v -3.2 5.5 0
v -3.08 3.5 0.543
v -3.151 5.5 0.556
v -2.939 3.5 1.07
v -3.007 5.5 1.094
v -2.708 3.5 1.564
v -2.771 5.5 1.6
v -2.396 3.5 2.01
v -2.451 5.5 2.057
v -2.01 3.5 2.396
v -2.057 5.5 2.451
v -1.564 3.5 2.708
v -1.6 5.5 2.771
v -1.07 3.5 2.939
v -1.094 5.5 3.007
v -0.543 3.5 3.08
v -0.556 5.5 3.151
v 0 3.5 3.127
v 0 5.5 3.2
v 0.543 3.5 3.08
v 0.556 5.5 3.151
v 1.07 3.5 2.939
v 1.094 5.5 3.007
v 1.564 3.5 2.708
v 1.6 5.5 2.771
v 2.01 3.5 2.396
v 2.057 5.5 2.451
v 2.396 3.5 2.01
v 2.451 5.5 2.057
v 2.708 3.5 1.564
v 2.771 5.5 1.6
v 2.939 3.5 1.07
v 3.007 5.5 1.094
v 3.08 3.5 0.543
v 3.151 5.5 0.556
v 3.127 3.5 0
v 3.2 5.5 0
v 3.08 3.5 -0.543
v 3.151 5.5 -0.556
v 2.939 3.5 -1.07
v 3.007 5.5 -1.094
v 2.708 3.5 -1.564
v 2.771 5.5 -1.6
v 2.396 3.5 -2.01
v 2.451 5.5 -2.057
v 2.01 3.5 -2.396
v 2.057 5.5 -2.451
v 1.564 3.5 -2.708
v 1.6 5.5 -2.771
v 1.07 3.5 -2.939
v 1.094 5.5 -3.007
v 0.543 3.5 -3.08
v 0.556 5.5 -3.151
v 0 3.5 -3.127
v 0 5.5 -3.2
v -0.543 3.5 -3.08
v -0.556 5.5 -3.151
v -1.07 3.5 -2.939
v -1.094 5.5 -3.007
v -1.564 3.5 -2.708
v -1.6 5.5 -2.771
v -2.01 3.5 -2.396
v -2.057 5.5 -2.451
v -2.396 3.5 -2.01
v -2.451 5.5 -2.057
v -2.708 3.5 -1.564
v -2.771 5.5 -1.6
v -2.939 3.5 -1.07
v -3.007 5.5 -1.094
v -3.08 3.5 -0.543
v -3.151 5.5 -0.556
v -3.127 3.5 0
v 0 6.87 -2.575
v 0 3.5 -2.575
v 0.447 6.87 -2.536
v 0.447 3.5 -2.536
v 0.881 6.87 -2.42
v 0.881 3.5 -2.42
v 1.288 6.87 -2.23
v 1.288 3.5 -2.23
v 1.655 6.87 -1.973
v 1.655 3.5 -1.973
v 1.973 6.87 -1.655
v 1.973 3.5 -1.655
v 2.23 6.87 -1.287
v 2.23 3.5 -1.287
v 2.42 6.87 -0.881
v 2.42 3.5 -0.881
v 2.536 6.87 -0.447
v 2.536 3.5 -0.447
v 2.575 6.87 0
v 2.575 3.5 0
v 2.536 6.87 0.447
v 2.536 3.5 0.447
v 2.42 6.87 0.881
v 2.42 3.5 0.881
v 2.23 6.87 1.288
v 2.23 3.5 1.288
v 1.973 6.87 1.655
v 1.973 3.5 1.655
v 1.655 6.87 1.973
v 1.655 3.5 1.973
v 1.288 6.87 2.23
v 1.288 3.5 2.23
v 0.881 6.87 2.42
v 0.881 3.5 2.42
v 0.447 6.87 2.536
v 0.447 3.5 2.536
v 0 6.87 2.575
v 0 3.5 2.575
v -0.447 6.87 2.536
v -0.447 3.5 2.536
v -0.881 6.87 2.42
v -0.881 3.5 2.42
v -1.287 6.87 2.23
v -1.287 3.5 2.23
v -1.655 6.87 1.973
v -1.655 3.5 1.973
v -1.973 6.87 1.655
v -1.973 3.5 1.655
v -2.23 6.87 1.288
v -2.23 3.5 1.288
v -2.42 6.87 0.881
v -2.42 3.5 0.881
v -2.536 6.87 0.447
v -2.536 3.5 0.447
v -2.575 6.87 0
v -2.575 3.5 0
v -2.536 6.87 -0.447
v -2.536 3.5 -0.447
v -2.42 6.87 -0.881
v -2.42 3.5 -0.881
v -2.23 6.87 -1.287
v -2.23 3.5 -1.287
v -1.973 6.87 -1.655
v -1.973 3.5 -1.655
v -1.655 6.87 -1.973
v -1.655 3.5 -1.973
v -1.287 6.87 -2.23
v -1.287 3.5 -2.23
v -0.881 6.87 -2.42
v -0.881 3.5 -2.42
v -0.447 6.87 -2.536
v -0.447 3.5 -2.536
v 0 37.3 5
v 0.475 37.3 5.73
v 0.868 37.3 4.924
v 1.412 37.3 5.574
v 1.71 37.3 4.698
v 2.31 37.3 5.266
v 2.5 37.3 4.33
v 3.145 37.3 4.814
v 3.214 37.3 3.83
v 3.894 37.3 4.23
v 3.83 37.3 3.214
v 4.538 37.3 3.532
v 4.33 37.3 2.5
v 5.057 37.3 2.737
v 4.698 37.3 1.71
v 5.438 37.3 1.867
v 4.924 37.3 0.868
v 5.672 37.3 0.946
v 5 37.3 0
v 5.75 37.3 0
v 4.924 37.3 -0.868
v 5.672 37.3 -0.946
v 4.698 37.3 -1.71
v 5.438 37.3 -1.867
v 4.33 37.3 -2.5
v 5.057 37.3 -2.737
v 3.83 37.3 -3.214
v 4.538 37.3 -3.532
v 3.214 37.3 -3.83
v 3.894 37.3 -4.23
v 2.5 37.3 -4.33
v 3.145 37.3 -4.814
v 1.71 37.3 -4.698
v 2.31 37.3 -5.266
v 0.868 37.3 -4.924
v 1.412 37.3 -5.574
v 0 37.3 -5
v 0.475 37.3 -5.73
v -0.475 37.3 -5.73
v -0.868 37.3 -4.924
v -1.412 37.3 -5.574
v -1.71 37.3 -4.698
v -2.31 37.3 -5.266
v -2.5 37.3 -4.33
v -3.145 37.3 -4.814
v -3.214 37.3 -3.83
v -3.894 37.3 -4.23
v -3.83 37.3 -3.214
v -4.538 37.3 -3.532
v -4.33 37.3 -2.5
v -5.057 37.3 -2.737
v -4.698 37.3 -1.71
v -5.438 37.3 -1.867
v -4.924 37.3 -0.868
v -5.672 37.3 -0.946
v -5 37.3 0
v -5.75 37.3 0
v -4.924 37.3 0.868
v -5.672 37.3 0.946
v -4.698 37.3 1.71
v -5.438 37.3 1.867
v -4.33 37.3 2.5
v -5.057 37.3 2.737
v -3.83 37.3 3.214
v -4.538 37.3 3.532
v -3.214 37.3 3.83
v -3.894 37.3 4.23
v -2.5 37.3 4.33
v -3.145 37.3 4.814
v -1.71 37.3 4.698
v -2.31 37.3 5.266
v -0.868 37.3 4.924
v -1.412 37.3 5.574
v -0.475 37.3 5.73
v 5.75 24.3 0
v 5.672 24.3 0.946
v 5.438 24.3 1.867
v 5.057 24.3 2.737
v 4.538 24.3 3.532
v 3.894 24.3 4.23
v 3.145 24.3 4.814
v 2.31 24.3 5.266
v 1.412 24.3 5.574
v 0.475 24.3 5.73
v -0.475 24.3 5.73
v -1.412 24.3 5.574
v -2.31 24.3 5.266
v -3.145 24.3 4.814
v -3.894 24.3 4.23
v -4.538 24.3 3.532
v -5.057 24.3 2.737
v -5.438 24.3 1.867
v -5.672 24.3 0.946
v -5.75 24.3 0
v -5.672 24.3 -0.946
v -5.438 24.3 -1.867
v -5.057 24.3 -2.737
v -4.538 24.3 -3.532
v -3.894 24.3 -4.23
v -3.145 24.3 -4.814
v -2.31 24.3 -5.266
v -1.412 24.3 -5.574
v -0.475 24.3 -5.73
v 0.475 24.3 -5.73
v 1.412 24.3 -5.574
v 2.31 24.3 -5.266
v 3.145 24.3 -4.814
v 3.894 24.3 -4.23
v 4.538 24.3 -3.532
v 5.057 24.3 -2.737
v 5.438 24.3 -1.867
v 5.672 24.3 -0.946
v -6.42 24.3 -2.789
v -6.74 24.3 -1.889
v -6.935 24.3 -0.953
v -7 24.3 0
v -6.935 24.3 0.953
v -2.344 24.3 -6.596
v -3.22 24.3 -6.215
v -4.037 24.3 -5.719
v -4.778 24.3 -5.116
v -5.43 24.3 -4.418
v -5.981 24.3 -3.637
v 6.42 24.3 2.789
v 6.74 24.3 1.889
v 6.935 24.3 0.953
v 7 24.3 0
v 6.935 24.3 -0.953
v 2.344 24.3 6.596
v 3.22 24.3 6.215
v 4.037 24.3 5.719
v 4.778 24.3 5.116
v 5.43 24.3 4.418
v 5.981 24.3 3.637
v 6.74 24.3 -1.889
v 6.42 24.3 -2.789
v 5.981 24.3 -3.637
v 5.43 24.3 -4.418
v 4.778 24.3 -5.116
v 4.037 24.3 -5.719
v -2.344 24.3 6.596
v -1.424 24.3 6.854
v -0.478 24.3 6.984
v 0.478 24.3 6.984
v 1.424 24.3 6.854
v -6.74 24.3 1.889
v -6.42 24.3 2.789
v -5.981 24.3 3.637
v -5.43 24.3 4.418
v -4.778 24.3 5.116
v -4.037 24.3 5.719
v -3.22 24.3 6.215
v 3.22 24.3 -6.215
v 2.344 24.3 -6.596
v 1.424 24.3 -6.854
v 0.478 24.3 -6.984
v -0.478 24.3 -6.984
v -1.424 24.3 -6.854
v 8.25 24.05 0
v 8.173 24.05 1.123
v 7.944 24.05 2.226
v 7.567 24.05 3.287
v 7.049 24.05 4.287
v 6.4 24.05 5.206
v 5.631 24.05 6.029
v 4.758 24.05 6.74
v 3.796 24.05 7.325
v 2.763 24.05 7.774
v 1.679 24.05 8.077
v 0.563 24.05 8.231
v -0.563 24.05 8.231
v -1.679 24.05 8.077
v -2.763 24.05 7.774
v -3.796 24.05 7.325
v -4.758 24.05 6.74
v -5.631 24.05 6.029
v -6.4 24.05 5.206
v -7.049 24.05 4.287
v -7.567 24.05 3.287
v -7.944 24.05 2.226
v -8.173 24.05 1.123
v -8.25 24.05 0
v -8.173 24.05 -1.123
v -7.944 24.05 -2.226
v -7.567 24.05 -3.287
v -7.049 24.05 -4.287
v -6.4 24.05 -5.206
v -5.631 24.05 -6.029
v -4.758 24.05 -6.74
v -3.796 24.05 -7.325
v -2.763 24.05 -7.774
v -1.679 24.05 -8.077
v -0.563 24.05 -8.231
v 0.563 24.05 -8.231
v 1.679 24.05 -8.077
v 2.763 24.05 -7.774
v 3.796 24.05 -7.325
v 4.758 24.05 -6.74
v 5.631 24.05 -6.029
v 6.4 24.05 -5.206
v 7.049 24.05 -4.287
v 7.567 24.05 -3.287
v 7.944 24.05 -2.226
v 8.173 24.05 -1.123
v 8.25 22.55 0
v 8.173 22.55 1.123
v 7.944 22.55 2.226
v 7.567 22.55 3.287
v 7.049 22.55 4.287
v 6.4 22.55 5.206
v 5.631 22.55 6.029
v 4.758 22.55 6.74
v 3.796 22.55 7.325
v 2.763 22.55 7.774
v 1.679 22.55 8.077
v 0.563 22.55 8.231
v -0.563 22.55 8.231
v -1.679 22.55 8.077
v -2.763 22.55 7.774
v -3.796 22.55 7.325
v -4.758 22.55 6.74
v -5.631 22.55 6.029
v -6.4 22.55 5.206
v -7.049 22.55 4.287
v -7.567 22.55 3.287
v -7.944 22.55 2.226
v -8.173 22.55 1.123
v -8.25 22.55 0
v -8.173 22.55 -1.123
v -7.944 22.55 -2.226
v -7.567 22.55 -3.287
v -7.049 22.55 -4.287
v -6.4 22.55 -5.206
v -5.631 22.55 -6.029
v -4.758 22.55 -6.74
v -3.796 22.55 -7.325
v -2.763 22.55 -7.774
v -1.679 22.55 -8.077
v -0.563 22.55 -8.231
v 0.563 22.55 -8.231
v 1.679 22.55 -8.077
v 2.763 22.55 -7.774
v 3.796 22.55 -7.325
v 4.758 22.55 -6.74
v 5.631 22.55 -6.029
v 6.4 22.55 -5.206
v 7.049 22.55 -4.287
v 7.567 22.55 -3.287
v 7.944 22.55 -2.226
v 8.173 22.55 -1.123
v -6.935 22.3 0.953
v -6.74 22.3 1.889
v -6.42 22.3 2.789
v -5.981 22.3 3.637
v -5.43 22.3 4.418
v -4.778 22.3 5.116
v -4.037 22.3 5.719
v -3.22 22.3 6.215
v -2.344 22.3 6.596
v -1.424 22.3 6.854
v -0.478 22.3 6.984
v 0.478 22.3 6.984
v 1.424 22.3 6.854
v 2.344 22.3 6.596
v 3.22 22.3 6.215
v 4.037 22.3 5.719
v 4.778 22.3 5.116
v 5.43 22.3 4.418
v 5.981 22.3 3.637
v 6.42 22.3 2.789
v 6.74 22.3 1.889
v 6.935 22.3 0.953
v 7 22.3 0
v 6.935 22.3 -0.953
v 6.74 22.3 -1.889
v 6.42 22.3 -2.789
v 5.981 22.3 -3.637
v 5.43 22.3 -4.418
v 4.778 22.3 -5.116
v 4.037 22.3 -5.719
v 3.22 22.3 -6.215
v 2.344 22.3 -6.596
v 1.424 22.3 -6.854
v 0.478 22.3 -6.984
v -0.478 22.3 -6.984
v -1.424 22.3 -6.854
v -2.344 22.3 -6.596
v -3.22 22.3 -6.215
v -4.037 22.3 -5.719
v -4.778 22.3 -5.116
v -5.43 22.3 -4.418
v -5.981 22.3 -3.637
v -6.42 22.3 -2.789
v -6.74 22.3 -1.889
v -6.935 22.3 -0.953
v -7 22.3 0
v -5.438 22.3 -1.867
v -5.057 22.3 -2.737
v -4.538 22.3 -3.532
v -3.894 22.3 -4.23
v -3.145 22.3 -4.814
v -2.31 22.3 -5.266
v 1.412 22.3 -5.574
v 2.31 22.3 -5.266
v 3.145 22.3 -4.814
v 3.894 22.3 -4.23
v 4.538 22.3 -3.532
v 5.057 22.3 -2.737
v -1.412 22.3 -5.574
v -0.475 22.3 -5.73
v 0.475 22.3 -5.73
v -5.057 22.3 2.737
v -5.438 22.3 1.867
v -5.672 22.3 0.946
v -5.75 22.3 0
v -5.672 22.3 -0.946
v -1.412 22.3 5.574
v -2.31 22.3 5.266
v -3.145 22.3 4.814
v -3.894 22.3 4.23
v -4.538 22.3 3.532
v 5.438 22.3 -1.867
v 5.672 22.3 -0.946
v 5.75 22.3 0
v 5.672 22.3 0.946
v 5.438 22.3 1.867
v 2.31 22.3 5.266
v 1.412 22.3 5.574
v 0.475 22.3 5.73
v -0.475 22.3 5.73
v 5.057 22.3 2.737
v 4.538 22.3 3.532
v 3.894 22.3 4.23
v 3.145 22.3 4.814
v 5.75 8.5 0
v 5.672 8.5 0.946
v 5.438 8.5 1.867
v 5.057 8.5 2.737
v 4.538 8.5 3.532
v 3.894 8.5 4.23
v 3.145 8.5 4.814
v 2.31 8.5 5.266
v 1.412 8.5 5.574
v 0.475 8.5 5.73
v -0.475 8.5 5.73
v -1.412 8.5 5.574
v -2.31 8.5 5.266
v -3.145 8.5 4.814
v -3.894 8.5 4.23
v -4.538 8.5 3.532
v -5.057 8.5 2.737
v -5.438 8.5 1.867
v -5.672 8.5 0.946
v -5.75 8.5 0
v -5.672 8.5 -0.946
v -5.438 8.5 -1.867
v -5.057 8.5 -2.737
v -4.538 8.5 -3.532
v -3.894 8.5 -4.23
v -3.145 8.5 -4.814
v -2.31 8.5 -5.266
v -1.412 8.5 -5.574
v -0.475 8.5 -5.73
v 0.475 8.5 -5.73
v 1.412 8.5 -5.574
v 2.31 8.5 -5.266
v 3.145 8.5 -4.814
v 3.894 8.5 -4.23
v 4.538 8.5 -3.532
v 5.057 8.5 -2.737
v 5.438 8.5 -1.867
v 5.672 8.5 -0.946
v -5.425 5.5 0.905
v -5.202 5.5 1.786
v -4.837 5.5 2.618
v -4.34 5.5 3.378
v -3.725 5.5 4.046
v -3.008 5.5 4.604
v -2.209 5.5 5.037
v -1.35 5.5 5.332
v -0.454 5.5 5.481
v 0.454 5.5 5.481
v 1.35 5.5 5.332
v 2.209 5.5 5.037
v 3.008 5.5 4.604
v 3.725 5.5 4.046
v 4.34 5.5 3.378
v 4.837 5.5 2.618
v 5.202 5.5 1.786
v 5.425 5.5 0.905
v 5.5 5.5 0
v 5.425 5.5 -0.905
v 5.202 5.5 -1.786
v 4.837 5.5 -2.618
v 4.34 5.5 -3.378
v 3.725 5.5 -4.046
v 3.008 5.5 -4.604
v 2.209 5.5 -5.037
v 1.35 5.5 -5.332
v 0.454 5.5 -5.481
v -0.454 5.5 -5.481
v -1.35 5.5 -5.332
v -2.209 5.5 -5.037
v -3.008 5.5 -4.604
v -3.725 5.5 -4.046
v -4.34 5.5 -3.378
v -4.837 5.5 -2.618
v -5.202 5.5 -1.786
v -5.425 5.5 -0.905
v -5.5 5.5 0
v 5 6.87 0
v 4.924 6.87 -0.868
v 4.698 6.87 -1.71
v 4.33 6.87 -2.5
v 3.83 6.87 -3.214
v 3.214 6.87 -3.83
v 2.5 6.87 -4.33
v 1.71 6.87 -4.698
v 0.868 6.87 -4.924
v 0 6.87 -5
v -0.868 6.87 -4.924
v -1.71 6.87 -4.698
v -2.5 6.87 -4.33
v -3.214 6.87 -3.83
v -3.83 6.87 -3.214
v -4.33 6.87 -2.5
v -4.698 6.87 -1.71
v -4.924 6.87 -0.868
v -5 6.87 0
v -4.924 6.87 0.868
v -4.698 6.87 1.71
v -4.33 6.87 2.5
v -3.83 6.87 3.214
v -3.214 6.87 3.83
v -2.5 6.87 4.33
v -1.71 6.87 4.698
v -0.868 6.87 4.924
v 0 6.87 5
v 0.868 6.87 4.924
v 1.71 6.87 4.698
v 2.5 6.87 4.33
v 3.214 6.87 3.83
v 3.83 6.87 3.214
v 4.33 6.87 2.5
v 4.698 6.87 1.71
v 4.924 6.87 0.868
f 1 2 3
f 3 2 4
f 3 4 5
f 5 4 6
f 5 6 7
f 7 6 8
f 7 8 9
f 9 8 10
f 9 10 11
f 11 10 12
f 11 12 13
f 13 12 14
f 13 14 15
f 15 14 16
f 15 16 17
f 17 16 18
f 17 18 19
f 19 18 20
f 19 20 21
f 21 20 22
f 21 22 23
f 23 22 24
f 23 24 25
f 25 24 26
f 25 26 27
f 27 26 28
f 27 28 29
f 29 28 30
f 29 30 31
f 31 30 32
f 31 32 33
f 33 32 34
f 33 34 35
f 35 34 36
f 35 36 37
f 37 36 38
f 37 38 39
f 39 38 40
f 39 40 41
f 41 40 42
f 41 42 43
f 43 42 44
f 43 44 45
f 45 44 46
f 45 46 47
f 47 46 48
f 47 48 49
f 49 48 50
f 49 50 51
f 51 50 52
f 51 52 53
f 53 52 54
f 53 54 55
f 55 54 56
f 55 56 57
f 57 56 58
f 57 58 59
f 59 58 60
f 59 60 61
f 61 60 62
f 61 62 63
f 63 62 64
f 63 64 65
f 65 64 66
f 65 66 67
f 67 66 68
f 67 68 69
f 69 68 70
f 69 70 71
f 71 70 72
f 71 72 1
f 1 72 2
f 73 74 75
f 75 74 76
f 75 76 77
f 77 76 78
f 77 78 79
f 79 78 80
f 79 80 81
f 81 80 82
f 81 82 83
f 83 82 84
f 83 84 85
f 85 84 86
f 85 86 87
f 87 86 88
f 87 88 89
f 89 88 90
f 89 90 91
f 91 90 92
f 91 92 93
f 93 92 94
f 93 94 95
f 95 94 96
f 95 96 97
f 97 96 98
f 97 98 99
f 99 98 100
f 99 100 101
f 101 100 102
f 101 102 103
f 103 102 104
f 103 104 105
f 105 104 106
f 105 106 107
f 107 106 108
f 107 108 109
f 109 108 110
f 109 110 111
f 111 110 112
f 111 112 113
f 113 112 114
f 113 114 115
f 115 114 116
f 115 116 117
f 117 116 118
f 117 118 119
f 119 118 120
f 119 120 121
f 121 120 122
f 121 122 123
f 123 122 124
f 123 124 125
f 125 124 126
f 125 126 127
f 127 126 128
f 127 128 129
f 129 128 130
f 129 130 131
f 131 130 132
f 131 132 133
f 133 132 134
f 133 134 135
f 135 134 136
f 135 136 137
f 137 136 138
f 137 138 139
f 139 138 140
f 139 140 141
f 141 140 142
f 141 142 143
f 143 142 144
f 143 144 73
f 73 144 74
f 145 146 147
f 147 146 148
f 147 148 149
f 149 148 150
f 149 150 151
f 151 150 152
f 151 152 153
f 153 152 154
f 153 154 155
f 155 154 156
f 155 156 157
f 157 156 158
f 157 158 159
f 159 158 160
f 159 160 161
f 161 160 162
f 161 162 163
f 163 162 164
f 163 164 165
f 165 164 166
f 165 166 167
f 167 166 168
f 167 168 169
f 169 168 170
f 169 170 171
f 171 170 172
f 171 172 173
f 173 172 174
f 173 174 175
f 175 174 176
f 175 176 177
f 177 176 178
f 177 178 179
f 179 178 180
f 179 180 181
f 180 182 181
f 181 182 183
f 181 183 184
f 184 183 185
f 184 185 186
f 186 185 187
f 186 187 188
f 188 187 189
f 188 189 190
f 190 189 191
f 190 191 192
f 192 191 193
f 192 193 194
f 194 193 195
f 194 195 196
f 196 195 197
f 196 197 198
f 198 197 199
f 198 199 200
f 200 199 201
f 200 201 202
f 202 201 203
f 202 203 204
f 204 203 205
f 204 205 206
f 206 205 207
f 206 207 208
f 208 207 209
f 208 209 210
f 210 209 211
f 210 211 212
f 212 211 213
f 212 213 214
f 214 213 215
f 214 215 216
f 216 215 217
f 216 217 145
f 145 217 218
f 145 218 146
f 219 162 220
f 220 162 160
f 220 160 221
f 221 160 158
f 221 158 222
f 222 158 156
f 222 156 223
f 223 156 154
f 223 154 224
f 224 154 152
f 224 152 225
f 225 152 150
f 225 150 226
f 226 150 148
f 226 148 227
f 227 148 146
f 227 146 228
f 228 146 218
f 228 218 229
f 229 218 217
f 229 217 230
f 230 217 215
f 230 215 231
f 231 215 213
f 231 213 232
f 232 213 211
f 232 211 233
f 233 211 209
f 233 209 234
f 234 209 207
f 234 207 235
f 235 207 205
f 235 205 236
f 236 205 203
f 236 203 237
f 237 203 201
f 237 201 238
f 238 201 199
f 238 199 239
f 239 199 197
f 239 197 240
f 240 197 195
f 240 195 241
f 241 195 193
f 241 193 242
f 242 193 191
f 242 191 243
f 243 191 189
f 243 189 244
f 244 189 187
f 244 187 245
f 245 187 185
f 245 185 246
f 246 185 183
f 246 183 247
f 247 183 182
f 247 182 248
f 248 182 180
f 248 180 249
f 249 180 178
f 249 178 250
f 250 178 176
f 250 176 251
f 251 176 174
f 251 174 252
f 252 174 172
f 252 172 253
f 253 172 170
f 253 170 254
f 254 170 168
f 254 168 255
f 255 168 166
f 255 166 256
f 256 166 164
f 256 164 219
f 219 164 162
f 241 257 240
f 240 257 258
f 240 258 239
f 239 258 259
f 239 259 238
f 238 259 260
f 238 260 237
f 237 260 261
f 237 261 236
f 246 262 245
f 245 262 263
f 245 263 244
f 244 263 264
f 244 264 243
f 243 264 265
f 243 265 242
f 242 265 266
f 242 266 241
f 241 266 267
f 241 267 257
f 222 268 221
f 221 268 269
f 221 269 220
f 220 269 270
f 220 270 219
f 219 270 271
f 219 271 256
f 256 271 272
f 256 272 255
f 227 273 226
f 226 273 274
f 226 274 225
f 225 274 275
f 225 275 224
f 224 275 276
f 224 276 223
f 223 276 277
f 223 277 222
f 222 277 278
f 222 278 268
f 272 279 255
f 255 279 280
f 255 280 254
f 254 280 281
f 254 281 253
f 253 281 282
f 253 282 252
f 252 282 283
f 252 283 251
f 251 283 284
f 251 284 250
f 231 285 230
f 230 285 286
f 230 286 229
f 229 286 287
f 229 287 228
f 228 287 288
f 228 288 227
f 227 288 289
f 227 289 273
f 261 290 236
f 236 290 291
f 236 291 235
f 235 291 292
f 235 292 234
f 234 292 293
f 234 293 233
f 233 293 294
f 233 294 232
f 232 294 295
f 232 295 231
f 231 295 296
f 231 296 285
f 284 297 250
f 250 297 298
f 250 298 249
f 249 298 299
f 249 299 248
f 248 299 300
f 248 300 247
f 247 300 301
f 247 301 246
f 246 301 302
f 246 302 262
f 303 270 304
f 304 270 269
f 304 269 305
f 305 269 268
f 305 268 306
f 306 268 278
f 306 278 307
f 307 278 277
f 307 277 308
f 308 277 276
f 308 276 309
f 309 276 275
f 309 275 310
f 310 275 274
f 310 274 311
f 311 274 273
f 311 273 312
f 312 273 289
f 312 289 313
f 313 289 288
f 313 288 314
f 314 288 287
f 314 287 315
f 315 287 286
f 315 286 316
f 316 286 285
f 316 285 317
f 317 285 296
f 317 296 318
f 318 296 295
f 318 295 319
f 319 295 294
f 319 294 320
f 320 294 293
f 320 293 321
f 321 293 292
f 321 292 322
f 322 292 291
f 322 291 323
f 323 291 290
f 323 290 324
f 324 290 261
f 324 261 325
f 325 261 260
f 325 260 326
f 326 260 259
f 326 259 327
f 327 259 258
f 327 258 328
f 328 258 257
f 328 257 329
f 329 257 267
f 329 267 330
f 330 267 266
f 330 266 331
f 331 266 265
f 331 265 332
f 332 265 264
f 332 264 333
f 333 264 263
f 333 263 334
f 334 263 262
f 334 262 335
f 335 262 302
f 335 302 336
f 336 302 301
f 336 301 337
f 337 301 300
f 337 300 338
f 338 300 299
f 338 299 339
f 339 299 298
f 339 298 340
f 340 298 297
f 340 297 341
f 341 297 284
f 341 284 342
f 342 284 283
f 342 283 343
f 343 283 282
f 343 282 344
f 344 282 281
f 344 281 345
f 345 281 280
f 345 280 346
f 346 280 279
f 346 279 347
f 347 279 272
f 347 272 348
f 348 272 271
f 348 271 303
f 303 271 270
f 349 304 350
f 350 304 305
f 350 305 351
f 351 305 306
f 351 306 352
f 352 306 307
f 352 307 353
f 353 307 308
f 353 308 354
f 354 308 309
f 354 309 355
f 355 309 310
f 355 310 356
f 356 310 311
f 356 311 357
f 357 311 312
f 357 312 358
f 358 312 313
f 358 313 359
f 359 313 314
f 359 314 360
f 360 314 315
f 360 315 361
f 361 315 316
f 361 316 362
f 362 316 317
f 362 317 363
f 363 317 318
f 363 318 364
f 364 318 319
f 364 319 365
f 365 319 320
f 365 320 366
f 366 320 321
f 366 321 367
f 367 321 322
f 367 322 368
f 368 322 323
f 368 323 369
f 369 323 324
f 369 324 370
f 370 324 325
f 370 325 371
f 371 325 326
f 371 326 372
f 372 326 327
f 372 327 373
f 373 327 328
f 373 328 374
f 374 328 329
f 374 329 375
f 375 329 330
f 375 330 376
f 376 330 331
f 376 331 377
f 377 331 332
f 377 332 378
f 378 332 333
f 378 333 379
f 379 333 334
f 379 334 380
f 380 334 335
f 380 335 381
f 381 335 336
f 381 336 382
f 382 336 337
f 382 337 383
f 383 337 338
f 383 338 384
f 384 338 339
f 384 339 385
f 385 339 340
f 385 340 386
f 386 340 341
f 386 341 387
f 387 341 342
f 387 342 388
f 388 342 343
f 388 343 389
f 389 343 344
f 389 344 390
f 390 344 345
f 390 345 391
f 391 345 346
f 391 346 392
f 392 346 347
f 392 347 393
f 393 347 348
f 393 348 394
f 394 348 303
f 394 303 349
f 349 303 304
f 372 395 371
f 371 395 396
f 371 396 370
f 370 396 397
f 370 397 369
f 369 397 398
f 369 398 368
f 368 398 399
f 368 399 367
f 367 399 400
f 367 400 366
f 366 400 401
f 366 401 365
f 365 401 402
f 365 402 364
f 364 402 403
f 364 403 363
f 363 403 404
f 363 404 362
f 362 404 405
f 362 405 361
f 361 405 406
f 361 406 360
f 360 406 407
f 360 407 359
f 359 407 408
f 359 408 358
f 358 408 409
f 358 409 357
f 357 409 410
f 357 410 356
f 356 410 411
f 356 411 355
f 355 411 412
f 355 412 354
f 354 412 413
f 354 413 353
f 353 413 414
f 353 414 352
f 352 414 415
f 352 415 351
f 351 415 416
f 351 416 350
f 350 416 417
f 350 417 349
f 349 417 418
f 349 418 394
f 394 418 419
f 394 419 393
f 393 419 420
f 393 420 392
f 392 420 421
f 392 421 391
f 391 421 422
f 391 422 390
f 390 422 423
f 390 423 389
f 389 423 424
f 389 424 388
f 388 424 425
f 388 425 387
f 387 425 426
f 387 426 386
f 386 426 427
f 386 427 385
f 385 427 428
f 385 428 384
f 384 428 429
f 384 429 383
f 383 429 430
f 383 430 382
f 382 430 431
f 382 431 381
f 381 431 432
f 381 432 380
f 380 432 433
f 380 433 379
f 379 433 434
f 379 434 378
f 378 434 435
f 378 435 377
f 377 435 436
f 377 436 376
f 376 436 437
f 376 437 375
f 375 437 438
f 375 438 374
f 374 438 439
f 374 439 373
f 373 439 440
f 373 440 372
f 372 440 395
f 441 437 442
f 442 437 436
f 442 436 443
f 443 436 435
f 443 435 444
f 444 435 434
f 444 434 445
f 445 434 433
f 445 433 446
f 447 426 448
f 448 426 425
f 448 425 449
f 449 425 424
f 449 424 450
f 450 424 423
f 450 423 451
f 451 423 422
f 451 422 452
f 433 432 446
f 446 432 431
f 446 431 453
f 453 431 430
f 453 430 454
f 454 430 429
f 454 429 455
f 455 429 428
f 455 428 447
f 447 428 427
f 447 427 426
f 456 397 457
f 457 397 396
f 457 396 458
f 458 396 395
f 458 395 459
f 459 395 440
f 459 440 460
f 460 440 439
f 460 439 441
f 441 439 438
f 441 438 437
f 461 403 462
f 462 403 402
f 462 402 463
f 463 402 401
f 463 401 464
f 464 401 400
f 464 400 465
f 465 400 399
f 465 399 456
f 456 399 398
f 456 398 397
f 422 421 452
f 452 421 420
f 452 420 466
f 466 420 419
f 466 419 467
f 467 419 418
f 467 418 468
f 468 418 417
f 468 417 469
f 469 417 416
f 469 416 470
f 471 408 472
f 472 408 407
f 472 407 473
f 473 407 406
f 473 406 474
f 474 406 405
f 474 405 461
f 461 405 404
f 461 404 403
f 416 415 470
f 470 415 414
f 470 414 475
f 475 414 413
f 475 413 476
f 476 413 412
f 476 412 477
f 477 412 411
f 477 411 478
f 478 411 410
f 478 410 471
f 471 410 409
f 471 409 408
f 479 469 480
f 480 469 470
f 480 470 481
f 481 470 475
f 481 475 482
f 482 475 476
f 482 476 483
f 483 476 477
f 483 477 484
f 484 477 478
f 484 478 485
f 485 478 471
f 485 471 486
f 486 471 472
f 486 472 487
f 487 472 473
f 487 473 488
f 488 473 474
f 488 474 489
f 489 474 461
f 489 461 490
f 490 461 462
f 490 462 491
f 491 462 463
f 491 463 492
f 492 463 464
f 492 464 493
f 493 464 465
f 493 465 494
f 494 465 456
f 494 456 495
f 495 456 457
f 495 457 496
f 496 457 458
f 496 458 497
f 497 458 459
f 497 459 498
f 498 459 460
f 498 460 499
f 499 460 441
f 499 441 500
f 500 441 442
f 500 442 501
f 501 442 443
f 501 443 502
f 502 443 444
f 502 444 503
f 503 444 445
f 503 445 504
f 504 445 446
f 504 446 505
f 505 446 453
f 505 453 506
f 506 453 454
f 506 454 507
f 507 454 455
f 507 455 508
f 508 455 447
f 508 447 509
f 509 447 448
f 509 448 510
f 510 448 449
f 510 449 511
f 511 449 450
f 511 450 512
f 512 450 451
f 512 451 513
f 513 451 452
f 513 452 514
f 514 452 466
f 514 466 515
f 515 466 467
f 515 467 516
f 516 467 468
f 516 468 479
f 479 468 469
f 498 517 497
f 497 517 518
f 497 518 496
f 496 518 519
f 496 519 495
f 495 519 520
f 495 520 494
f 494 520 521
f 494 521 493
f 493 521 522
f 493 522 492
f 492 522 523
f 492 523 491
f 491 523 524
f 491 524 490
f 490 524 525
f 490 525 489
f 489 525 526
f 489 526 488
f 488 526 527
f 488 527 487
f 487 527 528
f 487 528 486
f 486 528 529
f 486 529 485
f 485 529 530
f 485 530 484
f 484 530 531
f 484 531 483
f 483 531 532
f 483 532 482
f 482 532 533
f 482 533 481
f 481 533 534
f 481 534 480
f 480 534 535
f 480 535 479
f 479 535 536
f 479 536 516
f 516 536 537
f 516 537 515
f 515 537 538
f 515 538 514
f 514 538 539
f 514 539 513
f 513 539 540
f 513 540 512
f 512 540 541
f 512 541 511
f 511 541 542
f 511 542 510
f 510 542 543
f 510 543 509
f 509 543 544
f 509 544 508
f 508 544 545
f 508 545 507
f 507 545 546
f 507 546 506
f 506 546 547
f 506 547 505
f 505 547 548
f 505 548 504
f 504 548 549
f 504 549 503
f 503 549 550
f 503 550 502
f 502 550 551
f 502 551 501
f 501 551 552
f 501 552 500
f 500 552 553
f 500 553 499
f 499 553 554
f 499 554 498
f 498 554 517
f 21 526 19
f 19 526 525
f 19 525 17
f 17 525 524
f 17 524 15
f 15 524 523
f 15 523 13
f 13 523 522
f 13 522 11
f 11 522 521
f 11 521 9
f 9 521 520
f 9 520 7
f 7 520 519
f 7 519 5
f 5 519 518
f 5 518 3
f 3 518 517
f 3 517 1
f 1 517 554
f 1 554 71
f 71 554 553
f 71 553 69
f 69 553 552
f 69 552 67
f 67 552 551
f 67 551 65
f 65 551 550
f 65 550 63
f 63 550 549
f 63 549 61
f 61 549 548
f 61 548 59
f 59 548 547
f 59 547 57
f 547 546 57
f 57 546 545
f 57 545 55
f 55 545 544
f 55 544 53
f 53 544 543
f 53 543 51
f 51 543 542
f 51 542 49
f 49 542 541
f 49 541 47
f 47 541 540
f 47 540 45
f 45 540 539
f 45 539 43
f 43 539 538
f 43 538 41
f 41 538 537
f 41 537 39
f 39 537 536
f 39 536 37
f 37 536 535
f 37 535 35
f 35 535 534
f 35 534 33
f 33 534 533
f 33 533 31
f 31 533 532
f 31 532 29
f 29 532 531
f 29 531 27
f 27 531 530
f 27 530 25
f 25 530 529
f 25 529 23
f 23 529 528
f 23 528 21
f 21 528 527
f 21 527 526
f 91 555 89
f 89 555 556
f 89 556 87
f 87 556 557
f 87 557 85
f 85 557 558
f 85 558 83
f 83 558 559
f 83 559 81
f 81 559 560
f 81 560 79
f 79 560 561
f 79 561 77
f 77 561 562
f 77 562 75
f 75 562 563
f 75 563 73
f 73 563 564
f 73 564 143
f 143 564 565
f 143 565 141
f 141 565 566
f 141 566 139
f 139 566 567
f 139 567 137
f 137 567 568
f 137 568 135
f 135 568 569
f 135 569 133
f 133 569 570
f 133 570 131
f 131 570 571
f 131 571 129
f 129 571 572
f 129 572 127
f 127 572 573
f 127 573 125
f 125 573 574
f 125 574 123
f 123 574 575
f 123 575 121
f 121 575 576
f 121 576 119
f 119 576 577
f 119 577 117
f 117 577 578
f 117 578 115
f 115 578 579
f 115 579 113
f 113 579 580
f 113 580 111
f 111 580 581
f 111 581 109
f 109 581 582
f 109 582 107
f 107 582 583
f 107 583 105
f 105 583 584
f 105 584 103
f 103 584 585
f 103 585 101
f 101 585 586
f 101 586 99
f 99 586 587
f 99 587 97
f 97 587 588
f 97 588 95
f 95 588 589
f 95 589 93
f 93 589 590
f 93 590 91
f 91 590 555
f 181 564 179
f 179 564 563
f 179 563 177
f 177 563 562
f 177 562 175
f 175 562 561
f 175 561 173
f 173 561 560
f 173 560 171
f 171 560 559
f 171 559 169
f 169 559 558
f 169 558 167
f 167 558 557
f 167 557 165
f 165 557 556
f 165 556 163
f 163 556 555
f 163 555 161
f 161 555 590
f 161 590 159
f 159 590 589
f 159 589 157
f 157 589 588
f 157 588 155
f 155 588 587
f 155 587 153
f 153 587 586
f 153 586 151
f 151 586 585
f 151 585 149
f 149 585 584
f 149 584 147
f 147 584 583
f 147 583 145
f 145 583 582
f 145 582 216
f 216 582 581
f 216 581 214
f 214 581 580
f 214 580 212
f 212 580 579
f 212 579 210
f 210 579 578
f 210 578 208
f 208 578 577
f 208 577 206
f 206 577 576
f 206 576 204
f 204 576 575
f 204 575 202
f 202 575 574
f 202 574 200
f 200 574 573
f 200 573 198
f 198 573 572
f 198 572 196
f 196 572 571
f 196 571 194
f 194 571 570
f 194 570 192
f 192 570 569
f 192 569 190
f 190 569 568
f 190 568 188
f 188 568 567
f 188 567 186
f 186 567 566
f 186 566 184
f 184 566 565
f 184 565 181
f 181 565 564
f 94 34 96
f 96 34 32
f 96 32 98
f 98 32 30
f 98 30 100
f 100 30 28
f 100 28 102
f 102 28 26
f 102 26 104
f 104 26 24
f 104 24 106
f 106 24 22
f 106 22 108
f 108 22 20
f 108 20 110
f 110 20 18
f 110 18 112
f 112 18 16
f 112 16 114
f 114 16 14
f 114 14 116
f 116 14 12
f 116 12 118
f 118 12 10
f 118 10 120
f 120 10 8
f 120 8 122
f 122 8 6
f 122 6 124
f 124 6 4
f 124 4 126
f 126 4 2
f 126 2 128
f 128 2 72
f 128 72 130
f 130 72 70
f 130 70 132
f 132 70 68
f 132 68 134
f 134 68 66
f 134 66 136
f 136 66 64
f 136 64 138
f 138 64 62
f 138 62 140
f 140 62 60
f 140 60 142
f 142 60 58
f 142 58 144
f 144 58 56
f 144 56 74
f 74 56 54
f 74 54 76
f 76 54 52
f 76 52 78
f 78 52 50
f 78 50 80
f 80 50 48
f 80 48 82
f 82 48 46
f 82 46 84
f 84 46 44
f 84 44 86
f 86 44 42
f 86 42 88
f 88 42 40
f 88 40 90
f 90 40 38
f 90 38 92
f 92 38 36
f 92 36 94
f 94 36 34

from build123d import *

# Parameters (mm, degrees)
SKETCH3_R          = 4.087752765
CUT_EXTRUDE1_DEPTH = 3.5


with BuildPart() as part:
    # Sketch1 → 5.63 mm bottom to pen tip (revolve)
    with BuildSketch(Plane.XY):
        Polygon((0, 0), (3, 0), (3.2, 5.5), (5.5, 5.5), (5.75, 8.5), (5.75, 22.3), (7, 22.3), (8.25, 22.55), (8.25, 24.05), (7, 24.3), (5.75, 24.3), (5.75, 37.3), (0, 37.3), align=None)
    revolve(axis=Axis((0, -143.950460456, 0), (0, 1, 0)))

    # Sketch2 → Cut-Revolve1 (revolve, cut)
    with BuildSketch(Plane(origin=(0, 0, 0), x_dir=(0, 0, -1), z_dir=(1, 0, 0))):
        Polygon((0.75, -5.63), (0.75, -0.43), (2.575, -0.43), (2.575, 6.87), (5, 6.87), (5, 39.162156903), (0, 39.162156903), (0, -5.63), align=None)
    revolve(axis=Axis((0, -1000, 0), (0, 1, 0)), mode=Mode.SUBTRACT)

    # Sketch3 → Cut-Extrude1 (cut)
    with BuildSketch(Plane(origin=(0, 0, 0), x_dir=(-1, 0, 0), z_dir=(0, -1, 0))):
        Circle(SKETCH3_R)
    extrude(amount=-CUT_EXTRUDE1_DEPTH, mode=Mode.SUBTRACT)


solid = part.part
